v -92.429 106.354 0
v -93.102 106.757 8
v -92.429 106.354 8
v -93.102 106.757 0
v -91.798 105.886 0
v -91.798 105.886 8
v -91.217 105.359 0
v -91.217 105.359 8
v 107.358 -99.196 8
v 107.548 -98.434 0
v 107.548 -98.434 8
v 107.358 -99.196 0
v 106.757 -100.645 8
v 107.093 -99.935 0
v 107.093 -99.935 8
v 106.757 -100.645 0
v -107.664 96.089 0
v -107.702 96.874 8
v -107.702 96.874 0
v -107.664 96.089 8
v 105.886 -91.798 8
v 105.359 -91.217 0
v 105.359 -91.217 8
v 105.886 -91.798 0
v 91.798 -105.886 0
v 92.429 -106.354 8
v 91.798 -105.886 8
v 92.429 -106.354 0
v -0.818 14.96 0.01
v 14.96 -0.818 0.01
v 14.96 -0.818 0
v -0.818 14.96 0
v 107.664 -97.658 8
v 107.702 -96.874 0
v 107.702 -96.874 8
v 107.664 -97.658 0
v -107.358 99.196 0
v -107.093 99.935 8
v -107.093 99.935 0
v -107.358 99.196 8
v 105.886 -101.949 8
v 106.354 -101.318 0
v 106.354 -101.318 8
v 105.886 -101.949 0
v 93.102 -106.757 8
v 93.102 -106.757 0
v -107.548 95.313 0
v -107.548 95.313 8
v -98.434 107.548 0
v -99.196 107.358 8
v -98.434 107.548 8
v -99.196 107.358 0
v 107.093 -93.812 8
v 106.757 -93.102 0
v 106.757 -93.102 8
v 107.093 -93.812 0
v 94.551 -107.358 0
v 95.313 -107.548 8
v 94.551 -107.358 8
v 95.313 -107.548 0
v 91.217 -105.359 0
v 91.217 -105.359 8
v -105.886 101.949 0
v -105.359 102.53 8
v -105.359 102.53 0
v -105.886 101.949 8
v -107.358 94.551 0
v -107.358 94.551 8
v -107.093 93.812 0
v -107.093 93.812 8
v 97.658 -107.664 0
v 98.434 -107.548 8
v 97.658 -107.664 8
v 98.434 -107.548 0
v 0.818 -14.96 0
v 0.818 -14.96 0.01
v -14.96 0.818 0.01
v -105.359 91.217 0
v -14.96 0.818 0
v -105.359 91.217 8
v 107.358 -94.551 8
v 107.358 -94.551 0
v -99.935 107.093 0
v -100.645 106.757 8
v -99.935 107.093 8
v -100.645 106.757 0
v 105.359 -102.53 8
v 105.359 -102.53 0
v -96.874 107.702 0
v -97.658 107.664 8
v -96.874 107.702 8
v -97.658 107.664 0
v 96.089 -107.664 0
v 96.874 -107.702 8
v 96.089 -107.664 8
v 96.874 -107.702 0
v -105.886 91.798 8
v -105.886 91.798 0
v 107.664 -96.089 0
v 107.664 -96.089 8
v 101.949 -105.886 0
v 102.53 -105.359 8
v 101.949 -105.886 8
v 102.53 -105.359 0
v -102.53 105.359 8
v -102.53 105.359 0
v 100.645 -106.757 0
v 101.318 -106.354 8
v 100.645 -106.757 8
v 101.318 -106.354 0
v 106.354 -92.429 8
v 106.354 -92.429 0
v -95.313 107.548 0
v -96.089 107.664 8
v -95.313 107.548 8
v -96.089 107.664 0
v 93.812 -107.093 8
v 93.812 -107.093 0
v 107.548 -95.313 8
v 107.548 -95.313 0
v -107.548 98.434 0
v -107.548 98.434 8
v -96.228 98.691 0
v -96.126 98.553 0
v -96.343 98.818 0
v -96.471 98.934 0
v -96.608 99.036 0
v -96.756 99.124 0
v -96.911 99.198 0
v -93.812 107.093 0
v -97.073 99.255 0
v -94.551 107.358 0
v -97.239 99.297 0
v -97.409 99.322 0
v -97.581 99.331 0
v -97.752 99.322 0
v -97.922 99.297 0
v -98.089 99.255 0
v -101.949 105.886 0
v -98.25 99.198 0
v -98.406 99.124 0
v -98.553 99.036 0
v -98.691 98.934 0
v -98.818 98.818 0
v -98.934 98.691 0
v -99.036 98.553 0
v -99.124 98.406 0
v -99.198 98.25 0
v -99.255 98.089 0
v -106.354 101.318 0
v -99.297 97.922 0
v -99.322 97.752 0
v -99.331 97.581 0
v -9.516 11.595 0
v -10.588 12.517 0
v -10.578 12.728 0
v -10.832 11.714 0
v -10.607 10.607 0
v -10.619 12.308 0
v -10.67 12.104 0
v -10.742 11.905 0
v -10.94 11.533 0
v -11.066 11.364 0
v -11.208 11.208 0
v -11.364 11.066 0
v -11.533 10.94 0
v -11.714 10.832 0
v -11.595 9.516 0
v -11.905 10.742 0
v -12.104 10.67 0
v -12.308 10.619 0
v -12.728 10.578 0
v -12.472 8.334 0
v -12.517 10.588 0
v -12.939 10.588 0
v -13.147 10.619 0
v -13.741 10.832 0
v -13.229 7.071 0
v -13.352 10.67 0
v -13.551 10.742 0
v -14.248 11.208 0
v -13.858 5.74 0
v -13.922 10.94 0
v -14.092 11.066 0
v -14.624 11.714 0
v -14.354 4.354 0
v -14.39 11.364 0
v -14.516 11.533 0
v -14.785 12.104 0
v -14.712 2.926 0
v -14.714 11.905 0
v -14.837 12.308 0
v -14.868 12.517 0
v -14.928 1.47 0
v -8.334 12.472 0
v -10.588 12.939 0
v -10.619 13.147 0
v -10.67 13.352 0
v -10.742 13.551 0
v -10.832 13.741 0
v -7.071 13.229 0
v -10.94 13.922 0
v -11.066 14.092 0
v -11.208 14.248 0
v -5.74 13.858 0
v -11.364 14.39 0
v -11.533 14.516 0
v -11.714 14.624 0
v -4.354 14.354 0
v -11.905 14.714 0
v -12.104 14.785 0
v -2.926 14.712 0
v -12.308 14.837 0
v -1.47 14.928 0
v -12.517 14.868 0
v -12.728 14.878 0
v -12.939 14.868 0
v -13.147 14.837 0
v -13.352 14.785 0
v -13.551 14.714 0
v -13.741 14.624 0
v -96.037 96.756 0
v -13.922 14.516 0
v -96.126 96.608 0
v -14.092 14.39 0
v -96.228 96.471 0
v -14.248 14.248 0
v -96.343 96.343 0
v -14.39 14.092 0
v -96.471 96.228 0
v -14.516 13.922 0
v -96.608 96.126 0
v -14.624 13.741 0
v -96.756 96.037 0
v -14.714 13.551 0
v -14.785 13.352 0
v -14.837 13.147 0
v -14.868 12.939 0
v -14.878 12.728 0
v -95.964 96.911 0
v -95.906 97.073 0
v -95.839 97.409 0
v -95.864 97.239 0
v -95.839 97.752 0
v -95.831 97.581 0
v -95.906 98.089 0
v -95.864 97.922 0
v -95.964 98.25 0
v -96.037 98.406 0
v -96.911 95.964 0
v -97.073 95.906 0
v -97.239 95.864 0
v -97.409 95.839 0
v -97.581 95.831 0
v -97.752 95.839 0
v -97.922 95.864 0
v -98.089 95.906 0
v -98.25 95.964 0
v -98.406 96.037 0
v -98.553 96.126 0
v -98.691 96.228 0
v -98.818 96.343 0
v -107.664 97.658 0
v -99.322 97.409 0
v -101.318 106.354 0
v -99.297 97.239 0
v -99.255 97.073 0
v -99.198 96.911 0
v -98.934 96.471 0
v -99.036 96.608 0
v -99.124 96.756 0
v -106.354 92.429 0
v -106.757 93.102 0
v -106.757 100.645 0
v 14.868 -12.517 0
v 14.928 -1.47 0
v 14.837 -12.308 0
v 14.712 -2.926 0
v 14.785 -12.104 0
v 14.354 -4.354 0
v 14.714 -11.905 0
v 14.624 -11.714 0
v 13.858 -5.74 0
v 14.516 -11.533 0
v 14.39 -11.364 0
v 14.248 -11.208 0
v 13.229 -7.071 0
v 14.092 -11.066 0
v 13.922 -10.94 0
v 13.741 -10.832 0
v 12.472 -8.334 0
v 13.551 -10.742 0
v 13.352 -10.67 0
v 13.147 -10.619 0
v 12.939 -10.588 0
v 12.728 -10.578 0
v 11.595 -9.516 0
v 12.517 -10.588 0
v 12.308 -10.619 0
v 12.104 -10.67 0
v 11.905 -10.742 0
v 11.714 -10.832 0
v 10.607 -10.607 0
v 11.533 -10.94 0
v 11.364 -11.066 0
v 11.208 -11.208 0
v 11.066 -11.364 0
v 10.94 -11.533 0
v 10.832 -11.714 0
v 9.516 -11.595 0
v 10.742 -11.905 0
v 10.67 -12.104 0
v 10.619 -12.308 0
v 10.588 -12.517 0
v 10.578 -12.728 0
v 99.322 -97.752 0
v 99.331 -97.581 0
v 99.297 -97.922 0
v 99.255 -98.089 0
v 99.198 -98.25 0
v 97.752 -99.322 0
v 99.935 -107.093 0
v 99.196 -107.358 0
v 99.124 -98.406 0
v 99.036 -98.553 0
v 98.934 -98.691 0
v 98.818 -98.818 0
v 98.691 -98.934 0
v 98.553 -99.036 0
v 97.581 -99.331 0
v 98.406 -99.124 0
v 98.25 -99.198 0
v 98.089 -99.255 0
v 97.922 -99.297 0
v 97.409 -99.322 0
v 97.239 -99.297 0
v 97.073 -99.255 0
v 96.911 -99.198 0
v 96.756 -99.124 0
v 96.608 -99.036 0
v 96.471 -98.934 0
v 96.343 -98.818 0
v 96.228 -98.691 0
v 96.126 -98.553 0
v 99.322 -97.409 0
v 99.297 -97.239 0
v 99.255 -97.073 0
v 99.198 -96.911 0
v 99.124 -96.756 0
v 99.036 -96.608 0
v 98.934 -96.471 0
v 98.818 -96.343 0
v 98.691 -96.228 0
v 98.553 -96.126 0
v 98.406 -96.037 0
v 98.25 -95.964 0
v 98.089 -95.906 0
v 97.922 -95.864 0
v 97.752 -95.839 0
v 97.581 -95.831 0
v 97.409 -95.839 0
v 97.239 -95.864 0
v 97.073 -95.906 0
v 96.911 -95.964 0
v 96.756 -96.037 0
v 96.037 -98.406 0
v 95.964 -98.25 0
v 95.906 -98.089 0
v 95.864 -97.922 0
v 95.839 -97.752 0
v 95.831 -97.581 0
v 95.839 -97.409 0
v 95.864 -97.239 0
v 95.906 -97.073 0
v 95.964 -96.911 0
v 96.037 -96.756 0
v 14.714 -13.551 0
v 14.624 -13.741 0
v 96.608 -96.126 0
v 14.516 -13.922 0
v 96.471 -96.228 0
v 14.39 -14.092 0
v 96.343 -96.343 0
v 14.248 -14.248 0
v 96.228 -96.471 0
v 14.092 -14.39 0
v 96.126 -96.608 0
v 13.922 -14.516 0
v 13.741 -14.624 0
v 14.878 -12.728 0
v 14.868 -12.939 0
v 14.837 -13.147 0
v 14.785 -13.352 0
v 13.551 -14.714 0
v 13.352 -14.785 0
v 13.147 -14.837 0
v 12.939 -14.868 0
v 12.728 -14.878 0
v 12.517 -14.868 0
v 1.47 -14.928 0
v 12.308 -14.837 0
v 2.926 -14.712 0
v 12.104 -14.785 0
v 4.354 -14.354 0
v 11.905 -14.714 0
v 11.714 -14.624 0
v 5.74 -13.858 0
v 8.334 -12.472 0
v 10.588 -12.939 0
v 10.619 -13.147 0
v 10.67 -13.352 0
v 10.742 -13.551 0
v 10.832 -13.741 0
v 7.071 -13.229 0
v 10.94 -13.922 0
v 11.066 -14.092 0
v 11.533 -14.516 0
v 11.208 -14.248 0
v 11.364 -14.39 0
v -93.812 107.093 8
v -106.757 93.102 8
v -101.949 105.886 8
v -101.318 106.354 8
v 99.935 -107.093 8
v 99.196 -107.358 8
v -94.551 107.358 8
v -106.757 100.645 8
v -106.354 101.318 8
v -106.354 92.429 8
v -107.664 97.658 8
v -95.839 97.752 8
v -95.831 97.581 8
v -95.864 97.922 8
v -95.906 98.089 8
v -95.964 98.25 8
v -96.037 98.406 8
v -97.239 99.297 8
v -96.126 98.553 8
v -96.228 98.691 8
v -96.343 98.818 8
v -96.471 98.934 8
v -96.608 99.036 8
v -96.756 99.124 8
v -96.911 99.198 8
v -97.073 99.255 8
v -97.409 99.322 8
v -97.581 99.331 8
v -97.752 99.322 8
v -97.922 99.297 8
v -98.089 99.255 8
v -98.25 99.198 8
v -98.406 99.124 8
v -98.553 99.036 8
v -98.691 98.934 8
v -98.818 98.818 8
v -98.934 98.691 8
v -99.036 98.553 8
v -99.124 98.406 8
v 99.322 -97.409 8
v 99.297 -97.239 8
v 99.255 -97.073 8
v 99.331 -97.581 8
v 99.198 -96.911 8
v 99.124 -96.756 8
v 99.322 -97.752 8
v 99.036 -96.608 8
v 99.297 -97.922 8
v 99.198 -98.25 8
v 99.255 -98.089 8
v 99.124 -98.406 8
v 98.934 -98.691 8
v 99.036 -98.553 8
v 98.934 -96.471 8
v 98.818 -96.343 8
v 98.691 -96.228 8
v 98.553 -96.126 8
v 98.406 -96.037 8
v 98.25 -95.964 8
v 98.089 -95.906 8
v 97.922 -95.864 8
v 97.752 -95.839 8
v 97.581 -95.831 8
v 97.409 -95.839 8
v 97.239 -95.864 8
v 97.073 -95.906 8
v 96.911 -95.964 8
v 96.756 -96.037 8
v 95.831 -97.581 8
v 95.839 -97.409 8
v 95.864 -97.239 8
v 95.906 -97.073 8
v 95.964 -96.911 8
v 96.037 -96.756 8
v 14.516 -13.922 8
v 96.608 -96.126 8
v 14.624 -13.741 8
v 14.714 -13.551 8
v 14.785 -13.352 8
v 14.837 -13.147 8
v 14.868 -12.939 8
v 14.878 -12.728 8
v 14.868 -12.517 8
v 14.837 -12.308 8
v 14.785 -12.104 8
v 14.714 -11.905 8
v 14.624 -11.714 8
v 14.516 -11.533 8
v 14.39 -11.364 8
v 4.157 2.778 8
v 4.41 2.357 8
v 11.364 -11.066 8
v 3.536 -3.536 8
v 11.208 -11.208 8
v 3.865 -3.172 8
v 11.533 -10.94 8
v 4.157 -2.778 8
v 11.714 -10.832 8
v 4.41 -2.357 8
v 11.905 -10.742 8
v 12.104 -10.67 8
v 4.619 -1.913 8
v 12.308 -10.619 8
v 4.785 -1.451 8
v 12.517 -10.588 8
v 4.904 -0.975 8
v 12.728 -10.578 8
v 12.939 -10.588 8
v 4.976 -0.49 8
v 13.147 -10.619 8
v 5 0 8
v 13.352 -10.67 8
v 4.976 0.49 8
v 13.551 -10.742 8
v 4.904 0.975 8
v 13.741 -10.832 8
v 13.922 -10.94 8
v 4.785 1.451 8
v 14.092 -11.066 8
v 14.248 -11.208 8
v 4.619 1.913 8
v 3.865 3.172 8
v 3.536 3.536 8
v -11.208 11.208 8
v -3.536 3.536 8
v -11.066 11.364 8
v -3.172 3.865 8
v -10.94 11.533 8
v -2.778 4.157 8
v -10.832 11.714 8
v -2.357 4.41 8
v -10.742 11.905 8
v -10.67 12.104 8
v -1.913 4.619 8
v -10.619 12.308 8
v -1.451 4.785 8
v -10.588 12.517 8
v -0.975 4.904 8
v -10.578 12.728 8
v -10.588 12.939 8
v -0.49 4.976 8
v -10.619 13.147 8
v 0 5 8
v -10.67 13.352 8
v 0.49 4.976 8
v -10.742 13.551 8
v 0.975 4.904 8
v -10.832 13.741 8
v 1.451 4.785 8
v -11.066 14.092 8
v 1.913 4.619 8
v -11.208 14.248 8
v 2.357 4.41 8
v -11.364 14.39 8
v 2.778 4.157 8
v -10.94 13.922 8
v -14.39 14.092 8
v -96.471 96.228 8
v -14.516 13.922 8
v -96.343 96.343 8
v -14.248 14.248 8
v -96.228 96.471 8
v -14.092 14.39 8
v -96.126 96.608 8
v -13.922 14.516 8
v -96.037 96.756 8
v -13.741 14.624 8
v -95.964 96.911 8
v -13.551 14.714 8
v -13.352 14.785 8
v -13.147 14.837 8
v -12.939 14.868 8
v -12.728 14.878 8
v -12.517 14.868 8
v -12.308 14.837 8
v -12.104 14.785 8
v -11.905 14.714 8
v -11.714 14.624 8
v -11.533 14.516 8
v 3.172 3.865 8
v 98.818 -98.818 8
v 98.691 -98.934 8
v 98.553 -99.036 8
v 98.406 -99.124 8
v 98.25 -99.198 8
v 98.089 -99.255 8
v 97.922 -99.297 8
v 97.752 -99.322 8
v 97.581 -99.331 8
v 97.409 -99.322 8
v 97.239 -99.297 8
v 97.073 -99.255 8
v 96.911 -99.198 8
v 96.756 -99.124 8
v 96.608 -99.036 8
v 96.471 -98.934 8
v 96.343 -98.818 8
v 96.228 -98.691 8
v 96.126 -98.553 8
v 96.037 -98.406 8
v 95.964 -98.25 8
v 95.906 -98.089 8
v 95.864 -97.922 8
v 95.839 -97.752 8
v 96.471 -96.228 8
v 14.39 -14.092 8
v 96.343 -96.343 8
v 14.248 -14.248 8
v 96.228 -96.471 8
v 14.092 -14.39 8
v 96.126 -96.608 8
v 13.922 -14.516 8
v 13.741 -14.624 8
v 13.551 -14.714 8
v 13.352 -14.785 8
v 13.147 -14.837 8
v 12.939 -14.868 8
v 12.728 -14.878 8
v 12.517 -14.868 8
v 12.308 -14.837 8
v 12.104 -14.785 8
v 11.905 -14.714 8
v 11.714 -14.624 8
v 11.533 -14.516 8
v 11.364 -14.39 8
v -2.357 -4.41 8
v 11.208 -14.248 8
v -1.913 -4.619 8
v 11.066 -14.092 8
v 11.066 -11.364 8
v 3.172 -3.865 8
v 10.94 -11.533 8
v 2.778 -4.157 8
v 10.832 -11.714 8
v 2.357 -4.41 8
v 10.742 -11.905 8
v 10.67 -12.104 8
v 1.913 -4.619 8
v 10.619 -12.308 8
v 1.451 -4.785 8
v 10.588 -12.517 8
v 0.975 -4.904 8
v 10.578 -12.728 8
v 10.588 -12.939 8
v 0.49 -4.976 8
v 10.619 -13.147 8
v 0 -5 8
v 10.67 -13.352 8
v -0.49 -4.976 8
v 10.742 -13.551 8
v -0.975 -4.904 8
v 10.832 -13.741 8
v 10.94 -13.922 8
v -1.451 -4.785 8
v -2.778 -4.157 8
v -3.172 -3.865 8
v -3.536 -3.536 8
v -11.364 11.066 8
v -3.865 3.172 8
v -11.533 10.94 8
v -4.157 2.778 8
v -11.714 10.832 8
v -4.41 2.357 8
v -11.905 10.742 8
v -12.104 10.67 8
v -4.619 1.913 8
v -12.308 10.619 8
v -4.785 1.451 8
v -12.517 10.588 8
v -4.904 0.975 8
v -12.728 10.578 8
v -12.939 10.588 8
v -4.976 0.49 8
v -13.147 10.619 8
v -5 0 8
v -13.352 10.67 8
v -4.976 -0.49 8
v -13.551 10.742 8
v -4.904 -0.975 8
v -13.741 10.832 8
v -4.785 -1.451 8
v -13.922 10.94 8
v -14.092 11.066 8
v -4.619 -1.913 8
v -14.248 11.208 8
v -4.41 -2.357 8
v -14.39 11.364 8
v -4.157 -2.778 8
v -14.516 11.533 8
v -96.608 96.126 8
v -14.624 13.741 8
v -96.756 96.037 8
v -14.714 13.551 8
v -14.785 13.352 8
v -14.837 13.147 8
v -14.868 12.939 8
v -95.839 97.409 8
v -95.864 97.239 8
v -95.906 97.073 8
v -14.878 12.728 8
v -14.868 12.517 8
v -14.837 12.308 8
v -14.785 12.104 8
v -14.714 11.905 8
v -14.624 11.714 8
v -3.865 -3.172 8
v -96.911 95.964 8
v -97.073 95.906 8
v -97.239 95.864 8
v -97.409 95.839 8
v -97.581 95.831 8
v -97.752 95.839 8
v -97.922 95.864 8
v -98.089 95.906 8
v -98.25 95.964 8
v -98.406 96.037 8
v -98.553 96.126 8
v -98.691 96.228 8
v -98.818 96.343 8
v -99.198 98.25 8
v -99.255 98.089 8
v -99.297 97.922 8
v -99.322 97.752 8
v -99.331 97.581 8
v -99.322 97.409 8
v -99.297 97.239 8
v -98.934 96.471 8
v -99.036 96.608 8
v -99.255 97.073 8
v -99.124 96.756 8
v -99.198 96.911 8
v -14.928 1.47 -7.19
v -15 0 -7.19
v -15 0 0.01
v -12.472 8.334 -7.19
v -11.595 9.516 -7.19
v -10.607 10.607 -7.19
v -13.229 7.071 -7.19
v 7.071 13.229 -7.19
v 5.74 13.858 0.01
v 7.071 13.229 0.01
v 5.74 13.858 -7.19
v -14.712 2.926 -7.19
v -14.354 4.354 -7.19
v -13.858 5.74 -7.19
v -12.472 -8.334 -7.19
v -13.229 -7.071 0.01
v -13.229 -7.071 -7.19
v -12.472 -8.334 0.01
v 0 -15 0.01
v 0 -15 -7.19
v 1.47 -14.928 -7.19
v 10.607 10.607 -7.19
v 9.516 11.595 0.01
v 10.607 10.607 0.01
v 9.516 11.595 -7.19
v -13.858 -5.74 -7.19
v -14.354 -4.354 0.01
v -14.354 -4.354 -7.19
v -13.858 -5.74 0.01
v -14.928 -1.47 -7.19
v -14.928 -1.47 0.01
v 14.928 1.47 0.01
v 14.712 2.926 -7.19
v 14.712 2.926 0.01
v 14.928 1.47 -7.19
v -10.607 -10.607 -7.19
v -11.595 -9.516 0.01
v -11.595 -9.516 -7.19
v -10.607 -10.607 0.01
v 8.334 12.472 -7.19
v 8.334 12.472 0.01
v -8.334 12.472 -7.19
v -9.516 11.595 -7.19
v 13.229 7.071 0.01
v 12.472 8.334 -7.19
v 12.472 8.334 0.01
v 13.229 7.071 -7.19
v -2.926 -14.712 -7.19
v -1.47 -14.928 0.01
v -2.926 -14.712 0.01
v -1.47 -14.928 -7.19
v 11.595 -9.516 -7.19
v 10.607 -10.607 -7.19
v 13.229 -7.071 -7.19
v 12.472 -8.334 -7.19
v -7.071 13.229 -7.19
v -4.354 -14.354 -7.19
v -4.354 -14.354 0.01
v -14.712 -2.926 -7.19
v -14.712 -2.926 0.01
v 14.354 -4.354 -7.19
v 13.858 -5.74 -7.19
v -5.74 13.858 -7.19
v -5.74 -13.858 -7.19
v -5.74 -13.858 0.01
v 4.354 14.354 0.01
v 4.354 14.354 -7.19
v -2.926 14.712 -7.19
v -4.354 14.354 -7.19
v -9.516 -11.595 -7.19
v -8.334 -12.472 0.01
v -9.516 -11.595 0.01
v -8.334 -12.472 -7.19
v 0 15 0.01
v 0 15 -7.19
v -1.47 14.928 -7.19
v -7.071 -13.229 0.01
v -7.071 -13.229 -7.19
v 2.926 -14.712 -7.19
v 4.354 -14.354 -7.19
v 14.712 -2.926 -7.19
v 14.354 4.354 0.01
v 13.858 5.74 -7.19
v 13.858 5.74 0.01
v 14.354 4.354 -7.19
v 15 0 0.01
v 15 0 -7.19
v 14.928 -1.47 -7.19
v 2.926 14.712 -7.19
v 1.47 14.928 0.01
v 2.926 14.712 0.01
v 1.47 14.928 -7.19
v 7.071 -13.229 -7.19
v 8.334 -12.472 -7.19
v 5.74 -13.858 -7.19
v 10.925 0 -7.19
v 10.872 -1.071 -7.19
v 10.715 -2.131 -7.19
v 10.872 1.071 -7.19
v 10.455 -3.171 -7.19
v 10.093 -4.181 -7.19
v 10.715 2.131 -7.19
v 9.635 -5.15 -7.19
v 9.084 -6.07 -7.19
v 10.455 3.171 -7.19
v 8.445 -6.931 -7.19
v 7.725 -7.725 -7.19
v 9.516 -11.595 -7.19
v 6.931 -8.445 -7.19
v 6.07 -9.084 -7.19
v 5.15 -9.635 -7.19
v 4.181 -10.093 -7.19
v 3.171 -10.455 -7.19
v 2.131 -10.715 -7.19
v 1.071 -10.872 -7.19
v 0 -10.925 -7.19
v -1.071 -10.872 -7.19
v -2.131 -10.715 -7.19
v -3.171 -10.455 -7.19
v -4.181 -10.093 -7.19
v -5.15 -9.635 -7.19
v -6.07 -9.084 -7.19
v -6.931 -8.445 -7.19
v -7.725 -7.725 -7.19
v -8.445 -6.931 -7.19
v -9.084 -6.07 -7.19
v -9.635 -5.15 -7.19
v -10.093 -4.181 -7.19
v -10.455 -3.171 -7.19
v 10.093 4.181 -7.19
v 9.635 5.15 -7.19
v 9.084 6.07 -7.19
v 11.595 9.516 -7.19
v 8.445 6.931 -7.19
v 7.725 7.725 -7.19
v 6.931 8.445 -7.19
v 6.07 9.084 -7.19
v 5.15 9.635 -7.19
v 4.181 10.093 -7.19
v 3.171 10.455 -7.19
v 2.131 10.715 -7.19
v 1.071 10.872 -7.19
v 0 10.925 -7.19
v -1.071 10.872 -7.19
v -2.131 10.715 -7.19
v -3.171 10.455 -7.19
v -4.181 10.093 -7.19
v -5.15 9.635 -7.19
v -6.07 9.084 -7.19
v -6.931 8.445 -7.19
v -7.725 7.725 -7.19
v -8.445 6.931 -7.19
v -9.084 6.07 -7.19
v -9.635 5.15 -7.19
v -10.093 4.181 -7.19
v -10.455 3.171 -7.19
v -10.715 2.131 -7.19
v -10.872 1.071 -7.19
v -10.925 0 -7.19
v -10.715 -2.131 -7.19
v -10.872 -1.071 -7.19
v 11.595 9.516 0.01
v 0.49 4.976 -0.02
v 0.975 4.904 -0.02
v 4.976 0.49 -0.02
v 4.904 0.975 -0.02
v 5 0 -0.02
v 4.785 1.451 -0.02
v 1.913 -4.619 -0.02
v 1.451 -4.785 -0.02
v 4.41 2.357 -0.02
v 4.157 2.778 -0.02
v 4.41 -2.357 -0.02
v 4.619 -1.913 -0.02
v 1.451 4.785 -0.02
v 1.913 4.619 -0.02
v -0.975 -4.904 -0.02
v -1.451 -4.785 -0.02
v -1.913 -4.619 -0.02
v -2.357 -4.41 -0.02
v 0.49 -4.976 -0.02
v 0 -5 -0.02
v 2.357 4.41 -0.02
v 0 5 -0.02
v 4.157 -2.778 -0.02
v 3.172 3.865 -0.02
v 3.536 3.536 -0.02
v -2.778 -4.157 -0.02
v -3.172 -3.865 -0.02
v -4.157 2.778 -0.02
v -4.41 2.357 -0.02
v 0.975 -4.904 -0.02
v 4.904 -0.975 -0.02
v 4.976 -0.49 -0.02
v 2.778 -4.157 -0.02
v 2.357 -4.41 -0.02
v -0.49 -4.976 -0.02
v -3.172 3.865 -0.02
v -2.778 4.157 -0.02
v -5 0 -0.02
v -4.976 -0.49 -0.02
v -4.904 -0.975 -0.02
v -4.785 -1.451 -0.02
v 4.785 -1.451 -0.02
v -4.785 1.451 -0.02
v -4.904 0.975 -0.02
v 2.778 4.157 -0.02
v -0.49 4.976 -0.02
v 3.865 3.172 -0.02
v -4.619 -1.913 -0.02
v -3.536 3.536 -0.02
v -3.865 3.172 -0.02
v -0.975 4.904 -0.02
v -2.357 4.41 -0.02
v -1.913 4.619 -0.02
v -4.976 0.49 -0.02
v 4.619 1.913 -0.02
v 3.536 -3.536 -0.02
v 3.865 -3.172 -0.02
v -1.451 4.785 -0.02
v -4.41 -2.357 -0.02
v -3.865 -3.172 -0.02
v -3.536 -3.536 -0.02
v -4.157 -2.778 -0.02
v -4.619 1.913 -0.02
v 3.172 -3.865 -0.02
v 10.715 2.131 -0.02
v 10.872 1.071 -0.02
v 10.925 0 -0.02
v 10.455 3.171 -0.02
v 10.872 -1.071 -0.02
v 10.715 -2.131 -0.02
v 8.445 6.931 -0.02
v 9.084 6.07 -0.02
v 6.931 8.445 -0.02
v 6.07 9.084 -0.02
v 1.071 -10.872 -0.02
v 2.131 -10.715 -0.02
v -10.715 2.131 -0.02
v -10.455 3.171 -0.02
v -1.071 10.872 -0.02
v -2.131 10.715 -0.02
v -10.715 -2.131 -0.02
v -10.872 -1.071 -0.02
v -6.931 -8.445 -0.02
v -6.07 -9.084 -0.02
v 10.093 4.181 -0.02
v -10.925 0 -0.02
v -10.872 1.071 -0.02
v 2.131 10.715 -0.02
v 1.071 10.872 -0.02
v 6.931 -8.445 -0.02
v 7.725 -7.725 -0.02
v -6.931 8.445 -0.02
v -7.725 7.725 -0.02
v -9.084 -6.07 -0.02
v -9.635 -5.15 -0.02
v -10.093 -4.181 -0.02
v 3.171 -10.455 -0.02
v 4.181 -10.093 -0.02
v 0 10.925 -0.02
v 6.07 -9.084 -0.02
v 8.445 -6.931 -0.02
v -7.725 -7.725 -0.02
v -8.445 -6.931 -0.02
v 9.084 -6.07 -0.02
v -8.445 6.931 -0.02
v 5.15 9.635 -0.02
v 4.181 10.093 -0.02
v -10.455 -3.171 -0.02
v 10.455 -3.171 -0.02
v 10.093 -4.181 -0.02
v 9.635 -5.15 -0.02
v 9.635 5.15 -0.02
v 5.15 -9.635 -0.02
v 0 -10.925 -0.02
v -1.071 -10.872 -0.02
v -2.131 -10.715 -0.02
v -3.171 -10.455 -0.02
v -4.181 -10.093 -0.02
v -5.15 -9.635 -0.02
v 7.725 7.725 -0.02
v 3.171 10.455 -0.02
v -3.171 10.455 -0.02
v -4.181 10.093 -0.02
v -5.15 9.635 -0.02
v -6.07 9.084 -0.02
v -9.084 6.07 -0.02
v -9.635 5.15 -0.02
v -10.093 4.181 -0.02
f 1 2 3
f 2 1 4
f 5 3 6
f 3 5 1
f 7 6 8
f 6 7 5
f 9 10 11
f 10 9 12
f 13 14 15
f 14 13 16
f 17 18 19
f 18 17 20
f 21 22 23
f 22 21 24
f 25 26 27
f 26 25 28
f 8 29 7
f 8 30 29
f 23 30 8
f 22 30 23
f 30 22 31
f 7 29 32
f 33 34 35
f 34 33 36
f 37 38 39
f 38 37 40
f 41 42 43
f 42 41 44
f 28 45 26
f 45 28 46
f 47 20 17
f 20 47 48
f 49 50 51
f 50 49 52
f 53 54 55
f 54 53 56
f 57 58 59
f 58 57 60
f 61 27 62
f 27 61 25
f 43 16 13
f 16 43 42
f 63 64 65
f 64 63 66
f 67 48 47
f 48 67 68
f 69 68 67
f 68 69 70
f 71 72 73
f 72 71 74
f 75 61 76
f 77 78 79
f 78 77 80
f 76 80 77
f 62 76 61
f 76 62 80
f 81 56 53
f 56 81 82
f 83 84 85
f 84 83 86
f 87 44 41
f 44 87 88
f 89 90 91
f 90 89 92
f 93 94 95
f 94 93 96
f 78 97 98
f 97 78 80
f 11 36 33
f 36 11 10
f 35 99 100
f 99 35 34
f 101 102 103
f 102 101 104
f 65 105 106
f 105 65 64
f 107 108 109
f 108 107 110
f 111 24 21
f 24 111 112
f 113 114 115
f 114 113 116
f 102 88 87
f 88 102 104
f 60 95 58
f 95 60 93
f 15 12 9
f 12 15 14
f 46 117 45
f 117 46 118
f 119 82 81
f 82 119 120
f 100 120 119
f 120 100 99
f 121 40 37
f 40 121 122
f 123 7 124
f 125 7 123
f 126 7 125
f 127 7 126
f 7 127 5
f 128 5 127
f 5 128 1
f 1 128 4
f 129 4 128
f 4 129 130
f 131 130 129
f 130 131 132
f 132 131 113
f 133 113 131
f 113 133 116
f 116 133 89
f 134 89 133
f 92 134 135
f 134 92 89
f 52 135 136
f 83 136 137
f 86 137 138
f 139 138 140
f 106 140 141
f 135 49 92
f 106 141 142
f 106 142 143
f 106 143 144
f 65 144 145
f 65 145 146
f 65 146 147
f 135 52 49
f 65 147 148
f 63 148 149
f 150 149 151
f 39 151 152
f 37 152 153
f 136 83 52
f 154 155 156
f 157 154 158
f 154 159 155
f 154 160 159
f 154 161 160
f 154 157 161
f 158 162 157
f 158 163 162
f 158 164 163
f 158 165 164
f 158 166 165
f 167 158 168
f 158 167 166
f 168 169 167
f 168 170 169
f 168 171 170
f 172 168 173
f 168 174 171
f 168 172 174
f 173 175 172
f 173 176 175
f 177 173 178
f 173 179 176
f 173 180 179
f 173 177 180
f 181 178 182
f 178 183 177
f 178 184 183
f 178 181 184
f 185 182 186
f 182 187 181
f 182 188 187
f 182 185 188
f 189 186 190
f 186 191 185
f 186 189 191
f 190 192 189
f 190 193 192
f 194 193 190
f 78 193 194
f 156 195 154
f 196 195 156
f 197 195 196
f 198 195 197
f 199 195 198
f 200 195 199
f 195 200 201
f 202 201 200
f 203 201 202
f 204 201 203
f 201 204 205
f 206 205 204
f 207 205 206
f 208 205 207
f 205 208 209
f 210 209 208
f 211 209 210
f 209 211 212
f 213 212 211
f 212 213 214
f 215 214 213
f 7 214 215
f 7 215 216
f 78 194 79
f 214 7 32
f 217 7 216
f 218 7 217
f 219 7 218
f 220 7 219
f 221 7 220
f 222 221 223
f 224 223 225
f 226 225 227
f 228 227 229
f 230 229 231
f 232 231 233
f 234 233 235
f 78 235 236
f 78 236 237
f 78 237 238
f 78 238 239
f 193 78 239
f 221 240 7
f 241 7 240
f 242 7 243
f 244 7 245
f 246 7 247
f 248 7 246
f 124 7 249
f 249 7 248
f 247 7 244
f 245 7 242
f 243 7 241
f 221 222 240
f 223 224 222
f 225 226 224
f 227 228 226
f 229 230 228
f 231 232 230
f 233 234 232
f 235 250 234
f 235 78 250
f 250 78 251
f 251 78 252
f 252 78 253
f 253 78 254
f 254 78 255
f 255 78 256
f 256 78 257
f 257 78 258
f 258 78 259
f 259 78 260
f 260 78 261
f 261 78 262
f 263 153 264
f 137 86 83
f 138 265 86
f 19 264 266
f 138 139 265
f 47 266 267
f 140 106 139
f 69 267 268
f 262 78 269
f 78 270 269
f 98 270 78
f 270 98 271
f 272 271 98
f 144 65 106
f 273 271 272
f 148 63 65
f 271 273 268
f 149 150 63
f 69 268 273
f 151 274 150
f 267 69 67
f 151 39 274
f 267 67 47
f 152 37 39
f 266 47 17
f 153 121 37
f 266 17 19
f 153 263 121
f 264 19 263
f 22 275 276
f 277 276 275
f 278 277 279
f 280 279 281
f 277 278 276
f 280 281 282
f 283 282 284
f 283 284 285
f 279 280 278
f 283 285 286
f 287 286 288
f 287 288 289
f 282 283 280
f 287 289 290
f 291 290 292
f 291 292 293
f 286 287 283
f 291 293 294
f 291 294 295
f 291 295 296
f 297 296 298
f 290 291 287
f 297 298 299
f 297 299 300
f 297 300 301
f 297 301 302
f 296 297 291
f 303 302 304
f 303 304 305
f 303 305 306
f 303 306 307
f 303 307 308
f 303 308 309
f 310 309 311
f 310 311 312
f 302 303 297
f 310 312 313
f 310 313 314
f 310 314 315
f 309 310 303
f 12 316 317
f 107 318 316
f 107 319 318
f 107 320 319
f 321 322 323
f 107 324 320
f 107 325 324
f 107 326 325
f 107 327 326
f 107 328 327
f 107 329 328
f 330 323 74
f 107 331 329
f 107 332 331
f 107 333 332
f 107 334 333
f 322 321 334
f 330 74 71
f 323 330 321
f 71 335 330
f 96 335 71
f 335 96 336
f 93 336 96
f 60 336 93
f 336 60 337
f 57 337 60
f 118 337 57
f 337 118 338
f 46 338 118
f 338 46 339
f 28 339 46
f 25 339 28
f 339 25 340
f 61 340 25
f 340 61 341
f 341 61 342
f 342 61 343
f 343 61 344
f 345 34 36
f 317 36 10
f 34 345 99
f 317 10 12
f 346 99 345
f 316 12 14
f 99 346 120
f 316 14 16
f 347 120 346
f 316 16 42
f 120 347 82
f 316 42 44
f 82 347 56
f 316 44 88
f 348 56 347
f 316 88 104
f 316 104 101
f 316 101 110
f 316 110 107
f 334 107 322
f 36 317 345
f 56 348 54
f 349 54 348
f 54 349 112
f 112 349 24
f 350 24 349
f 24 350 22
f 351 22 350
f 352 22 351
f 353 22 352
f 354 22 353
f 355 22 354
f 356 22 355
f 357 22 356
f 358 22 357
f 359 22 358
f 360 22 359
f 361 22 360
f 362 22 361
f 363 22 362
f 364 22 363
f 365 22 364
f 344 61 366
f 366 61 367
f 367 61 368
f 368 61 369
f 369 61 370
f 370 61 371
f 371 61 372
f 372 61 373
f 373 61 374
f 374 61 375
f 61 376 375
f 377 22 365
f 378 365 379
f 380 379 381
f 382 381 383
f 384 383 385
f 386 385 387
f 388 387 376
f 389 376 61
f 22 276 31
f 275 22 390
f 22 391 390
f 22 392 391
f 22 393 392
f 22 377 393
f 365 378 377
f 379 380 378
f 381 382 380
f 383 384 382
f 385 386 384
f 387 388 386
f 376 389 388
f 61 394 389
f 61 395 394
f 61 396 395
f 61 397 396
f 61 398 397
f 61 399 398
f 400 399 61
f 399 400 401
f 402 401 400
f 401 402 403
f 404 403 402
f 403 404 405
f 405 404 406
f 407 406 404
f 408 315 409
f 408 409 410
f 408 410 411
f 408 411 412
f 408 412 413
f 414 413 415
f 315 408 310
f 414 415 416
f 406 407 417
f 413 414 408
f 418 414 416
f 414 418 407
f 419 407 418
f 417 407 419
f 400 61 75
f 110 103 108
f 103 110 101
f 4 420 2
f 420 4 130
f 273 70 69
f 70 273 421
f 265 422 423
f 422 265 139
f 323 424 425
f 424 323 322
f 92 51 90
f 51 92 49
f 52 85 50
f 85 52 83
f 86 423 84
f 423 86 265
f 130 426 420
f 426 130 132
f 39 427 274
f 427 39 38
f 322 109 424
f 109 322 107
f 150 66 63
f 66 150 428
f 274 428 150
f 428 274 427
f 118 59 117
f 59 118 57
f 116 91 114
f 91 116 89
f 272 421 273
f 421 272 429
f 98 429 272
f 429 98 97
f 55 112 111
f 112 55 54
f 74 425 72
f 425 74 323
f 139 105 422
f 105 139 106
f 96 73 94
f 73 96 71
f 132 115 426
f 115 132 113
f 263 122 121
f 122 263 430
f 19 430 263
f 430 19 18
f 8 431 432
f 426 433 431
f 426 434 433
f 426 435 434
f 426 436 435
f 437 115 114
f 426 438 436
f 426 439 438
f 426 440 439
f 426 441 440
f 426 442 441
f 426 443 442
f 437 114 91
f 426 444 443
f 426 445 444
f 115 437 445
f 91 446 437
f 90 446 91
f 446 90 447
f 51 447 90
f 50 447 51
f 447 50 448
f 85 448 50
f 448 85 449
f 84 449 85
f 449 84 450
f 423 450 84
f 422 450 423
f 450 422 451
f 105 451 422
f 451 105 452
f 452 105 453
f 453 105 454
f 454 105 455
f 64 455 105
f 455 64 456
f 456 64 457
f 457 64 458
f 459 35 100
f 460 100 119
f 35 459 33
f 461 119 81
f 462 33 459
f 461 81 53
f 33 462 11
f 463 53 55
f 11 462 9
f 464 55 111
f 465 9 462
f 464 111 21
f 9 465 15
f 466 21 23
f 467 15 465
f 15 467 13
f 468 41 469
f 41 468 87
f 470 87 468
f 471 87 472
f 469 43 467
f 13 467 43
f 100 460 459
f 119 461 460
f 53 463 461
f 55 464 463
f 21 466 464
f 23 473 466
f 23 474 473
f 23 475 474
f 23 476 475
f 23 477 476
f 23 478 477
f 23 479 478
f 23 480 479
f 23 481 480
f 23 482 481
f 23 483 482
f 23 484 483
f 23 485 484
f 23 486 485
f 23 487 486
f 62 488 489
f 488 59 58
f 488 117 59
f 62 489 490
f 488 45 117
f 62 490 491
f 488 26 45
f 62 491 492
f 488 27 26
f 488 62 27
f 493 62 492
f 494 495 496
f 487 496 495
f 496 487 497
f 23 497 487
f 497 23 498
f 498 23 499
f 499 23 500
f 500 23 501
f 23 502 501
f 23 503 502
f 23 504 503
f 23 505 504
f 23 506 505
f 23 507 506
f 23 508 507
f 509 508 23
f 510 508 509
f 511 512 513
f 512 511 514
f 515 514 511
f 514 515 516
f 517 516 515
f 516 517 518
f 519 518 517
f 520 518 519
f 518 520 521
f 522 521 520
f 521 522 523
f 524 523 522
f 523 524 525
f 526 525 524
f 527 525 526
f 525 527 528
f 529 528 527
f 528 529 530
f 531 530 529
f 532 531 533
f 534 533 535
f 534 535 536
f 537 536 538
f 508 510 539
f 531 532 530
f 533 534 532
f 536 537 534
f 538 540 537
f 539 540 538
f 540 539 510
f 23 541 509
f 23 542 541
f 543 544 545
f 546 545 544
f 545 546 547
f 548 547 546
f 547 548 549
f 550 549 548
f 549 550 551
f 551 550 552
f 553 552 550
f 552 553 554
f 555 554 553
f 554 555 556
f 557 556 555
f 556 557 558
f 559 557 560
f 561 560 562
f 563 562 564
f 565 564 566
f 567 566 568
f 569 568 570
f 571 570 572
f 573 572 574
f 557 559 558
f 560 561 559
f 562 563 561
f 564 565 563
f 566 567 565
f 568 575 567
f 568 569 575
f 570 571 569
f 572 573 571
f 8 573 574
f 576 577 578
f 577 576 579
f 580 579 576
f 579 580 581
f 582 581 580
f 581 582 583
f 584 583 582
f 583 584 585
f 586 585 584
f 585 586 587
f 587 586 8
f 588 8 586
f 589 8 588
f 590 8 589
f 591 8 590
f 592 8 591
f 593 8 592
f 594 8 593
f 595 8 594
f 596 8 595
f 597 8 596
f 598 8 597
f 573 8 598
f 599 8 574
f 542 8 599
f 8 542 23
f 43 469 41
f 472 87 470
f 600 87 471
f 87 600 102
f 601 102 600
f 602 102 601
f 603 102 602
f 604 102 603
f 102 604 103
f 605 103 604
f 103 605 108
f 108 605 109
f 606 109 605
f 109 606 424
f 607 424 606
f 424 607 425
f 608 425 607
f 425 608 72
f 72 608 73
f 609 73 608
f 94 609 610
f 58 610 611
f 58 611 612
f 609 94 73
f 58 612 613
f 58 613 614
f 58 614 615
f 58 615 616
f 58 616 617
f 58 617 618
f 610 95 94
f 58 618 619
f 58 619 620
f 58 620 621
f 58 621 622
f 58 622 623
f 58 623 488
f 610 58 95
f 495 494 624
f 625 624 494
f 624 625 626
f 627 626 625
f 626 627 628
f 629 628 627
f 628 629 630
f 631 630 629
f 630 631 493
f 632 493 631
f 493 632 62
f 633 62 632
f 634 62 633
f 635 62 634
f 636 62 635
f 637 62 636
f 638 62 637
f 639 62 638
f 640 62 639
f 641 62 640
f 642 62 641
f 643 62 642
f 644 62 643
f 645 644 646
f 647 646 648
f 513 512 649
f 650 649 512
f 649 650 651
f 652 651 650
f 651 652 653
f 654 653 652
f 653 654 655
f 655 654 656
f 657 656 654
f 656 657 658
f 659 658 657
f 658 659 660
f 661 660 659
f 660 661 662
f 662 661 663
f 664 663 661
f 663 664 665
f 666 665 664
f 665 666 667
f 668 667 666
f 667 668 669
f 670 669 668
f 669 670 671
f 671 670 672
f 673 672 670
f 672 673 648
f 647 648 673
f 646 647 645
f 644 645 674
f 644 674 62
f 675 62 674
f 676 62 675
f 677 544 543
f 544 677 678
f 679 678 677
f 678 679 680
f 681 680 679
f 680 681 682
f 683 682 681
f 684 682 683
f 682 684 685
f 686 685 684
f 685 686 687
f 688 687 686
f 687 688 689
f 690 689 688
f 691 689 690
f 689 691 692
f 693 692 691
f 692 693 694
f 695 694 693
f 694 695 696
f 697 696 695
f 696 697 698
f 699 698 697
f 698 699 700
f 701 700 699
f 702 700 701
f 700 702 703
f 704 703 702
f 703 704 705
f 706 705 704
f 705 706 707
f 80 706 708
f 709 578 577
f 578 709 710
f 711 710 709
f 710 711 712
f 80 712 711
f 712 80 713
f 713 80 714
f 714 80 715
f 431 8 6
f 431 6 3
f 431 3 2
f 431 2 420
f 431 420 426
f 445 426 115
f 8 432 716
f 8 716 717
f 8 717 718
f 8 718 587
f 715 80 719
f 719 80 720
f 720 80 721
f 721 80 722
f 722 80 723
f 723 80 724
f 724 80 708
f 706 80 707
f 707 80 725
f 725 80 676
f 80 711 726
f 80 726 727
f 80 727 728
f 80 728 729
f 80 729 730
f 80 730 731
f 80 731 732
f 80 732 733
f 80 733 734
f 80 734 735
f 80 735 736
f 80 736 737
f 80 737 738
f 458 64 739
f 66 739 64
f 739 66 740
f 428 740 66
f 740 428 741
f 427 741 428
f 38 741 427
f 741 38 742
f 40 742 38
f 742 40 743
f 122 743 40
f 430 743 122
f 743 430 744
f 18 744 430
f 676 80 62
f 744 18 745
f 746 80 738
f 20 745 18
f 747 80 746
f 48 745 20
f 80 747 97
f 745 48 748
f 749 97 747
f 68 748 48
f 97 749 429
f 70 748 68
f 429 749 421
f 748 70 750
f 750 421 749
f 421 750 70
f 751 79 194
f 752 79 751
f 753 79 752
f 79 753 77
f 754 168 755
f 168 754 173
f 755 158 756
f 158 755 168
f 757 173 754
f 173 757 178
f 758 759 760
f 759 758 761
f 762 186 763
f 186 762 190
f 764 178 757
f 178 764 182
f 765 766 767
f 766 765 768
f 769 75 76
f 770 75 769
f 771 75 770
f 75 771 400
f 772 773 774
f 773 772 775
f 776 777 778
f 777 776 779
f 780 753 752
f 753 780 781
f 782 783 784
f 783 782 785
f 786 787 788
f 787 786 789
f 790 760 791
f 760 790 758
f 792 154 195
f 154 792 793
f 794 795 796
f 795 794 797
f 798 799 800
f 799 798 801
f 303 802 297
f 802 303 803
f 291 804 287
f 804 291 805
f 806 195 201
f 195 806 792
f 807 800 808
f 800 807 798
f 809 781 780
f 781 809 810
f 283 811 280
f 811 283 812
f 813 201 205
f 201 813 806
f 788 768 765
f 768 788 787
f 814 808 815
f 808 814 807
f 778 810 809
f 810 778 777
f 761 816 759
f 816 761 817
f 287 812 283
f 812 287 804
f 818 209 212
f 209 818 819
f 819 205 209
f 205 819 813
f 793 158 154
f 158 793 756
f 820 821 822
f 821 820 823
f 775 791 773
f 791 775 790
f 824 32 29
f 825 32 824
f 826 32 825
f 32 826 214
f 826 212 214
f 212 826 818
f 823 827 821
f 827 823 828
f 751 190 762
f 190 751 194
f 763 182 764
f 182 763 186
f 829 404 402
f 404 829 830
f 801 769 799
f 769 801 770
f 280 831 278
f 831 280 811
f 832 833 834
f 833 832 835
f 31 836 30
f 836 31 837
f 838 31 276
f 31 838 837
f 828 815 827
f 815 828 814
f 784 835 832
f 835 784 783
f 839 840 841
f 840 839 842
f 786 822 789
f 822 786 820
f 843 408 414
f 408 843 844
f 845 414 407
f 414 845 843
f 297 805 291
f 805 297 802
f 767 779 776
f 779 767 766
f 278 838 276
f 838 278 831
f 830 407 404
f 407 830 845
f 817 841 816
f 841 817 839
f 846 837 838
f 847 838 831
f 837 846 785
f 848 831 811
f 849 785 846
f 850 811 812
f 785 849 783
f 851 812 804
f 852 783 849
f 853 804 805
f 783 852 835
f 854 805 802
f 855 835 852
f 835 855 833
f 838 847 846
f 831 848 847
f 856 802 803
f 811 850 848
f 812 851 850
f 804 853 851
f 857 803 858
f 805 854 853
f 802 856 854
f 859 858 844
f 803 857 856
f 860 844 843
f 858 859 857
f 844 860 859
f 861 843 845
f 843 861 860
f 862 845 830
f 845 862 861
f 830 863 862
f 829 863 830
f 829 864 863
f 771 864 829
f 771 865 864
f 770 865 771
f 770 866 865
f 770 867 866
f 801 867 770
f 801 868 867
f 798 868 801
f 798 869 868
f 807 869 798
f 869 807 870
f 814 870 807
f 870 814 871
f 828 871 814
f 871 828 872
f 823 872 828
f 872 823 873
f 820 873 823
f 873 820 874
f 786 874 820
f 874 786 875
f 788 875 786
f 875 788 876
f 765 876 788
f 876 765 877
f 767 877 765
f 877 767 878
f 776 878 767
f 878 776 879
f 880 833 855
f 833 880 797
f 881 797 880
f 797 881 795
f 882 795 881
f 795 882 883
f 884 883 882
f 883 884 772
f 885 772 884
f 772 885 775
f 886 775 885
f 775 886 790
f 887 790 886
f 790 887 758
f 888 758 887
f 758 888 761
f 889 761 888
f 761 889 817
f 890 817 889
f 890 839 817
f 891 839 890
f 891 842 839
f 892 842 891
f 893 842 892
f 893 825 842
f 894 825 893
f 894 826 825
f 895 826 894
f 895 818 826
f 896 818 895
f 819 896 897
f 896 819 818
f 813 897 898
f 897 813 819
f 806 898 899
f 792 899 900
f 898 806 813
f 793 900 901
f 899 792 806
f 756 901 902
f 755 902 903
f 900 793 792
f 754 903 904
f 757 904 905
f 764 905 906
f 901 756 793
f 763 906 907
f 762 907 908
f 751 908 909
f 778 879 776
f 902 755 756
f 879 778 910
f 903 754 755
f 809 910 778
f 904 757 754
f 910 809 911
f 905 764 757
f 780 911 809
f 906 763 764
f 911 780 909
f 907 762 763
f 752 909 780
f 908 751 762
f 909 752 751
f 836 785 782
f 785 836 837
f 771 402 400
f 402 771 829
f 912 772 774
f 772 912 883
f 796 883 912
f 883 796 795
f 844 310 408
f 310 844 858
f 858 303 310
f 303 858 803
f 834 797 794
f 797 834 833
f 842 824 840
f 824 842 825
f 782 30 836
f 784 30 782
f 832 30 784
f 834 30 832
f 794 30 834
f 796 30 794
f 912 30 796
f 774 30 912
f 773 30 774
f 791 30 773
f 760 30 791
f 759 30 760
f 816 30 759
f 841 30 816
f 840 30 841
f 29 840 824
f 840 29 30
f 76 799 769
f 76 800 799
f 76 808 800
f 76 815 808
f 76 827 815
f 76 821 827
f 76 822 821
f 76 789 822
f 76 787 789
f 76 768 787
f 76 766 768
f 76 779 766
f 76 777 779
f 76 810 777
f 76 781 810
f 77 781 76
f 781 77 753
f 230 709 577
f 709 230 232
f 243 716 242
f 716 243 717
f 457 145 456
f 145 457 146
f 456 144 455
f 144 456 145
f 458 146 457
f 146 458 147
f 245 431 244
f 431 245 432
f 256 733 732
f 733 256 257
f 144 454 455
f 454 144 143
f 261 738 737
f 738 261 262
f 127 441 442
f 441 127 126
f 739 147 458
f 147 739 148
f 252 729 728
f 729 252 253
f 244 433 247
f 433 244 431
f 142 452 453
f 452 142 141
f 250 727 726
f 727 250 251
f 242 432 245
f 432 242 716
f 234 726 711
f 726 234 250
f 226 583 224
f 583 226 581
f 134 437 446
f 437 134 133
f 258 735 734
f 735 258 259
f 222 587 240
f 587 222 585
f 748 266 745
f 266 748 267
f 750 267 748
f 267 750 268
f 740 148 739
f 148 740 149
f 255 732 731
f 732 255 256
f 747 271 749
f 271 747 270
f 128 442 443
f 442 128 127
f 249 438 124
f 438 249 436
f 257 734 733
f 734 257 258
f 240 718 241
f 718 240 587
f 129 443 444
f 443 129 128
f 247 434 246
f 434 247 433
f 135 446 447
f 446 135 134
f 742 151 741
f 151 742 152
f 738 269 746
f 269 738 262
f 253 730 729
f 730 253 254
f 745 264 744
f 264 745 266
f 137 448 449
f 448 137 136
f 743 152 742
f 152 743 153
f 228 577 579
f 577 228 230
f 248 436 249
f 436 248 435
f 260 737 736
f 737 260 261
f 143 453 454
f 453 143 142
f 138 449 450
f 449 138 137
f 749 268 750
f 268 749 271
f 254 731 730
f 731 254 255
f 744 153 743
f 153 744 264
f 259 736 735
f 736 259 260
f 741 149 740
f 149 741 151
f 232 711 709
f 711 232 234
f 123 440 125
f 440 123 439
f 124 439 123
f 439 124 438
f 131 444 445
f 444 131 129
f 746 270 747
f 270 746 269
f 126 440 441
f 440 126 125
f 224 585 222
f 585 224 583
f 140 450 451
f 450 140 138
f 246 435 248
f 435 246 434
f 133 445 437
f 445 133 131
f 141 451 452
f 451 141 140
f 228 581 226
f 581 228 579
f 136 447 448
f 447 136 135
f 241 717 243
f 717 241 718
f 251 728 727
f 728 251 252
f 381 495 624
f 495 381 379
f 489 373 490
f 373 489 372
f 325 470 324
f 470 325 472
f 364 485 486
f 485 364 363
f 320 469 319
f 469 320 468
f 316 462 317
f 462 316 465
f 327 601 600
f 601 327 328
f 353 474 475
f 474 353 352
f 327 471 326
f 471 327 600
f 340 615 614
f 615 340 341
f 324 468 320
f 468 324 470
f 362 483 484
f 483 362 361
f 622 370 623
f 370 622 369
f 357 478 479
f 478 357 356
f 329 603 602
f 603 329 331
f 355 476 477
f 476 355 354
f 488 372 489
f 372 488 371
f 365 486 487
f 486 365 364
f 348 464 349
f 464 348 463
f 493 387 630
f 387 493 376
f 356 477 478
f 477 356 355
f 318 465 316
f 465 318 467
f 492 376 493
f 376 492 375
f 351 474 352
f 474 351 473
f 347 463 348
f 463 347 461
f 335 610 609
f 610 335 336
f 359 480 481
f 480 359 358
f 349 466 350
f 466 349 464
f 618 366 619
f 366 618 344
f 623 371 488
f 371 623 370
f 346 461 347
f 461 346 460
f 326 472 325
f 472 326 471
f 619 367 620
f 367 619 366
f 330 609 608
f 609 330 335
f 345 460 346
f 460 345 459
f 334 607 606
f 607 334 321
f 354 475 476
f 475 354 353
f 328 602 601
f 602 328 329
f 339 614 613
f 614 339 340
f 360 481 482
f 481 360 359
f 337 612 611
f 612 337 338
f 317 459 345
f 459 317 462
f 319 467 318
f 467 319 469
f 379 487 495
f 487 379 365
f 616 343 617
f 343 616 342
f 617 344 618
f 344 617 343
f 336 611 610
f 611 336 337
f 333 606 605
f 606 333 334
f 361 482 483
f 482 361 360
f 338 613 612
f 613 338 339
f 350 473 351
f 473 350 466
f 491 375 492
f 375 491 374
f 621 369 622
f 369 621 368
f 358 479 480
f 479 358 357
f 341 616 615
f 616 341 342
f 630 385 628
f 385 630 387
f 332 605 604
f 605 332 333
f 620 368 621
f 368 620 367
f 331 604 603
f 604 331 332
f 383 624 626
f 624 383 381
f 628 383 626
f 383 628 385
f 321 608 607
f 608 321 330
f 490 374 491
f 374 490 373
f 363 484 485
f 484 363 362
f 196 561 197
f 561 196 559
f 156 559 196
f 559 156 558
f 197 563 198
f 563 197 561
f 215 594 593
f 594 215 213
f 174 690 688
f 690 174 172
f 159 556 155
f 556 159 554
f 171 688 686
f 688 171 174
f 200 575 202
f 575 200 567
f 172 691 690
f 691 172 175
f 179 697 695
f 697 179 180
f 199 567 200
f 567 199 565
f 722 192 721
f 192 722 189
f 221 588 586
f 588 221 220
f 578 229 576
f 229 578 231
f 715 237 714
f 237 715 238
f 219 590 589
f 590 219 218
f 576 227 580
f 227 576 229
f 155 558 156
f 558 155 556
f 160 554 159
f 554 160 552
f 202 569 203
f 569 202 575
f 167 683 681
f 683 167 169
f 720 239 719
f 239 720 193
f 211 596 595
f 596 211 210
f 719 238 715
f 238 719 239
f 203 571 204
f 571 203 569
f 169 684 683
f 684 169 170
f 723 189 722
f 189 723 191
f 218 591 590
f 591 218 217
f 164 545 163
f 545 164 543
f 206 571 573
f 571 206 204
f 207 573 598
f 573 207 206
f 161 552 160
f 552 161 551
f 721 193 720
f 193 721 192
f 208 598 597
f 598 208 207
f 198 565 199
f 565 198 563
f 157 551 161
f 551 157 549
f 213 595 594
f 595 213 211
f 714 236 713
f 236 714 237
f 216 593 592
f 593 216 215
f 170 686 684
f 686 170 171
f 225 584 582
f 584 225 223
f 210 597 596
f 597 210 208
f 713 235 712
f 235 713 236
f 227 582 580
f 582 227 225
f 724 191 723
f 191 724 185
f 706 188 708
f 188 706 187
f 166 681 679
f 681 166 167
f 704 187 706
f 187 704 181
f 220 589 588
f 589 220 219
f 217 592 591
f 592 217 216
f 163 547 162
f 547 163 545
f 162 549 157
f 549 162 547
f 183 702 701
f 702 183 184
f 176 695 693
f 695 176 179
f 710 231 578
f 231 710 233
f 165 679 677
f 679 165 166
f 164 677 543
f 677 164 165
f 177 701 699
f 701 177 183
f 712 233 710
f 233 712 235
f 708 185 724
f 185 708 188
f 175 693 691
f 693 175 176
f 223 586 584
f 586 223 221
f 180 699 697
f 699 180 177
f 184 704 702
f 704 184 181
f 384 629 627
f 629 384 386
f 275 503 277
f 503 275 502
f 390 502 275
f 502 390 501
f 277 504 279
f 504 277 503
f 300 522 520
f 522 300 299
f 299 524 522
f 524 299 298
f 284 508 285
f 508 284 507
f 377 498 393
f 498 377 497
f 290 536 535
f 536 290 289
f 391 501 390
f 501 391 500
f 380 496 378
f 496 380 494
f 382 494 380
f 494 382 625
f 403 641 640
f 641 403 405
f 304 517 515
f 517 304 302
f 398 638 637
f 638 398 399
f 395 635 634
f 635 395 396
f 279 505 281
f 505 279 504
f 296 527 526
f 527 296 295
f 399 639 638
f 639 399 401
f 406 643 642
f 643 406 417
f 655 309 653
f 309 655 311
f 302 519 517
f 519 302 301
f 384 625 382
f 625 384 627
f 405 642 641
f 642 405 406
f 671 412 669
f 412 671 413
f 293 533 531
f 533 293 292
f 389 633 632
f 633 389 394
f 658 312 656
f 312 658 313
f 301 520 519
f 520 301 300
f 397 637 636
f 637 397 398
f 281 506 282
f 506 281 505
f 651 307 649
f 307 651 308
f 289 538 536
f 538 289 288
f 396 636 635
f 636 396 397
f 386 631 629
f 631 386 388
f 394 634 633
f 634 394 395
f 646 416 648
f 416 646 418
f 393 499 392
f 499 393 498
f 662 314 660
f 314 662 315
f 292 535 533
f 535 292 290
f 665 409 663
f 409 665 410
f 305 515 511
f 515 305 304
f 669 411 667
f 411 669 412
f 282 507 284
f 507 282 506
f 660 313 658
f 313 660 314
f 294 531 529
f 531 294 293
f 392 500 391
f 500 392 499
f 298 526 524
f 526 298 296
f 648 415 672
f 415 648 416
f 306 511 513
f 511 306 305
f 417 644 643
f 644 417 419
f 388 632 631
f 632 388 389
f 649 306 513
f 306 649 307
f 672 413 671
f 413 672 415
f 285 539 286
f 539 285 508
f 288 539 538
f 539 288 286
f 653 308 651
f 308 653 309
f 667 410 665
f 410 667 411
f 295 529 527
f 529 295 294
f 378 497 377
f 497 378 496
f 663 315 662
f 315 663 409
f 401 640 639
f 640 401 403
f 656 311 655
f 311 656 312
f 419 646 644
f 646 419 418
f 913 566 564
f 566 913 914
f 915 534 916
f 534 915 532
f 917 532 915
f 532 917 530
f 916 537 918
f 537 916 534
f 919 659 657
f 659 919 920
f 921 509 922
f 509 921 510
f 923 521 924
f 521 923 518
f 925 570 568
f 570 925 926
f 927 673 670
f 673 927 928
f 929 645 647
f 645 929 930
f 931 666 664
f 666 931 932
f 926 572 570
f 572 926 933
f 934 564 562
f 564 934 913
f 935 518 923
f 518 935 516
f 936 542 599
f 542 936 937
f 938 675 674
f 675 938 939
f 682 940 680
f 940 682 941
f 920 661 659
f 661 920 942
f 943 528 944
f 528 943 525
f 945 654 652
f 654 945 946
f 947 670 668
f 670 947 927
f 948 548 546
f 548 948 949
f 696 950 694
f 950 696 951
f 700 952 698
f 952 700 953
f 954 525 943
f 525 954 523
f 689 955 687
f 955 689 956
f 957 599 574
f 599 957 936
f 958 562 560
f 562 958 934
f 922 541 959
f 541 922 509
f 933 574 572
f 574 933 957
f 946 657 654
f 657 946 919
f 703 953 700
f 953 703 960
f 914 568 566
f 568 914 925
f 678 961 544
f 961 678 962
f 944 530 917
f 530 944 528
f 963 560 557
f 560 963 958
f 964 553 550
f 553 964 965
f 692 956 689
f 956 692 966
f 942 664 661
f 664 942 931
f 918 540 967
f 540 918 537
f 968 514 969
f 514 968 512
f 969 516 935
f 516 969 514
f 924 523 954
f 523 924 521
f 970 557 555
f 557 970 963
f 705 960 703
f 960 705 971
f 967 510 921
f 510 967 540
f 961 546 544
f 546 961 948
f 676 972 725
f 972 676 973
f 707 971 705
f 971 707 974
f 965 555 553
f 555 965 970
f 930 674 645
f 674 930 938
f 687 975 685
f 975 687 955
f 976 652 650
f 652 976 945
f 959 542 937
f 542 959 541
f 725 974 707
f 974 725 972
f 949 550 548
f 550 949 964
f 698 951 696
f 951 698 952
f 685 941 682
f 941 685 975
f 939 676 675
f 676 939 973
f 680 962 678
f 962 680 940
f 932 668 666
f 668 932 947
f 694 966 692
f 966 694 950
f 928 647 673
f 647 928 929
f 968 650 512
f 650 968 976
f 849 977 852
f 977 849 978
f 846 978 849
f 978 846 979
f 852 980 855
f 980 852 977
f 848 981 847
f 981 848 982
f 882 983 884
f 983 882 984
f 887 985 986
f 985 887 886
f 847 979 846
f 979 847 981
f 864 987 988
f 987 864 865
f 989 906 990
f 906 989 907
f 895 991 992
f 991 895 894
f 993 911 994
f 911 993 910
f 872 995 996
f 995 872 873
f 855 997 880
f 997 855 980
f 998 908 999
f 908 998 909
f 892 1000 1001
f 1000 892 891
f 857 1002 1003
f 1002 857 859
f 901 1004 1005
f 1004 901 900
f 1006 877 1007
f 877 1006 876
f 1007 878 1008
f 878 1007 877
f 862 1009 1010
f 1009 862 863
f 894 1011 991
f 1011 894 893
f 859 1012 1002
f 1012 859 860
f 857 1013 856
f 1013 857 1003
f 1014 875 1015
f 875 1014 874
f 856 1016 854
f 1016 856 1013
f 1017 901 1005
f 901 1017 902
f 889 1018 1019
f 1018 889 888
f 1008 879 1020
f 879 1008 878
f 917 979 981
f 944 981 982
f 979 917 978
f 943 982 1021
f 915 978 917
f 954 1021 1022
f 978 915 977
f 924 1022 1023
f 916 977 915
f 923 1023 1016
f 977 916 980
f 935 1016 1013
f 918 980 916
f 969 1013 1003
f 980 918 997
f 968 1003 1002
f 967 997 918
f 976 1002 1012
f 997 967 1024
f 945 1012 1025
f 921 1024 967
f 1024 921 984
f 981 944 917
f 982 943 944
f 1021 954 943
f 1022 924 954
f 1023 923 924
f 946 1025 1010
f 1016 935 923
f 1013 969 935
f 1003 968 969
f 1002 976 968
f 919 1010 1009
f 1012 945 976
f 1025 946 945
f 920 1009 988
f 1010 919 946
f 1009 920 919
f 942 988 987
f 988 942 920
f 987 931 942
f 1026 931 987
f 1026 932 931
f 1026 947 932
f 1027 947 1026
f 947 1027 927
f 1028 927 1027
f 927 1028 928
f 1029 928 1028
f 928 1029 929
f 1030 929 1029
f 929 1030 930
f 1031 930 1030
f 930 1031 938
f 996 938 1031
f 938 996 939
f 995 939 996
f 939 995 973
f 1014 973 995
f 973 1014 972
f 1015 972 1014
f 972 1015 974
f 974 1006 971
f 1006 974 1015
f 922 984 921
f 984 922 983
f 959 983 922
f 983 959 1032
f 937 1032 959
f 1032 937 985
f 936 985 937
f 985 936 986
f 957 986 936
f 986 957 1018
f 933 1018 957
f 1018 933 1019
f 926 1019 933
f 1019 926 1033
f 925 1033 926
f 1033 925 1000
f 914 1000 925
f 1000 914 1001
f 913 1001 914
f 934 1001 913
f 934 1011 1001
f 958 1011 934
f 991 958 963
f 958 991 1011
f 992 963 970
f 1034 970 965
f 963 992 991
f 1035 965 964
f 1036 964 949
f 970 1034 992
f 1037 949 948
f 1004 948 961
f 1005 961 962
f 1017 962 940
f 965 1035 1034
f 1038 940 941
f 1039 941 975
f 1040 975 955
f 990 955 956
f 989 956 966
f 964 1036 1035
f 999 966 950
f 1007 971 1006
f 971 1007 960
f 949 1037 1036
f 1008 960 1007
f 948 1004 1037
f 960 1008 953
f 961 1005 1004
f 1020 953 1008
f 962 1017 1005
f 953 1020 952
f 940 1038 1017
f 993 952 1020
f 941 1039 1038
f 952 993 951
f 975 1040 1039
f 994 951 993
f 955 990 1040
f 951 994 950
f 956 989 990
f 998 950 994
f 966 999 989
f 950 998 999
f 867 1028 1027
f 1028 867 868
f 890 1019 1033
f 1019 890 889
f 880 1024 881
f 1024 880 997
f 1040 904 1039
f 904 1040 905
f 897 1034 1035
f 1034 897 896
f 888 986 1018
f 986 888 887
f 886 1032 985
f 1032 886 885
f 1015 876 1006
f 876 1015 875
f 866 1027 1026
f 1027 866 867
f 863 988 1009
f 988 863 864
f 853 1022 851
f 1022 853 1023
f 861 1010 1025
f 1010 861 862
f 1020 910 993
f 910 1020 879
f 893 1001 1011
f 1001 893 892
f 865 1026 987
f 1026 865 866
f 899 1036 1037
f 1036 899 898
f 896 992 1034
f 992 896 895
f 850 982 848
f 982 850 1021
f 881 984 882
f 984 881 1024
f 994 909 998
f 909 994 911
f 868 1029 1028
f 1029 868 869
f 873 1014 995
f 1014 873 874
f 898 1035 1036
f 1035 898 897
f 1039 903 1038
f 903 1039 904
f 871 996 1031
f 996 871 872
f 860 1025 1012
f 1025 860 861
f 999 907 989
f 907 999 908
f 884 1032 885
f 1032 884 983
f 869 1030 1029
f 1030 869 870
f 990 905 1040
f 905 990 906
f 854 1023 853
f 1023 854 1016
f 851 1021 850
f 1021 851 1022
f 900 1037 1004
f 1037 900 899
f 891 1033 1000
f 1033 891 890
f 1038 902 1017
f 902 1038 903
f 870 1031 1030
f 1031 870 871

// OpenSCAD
// Gen-DI — rear BEARING BRIDGE (bar endbell, 2026-10-10): a 608 boss on a 20 mm wide bar that spans the
// two frame rods at 135 deg and 135+180 deg (R = flange_bolt_r). The front bridge uses the rods at 45/225 deg, the rear
// bridge the rods at 135/315 deg, so the two bridges cross at 90 deg and the stator is held at 4 points.
// A bar instead of a full disc is what lets this big-ring kit fit ONE 410 mm plate. Print flat face DOWN (boss up, no supports).
// Brace holes (temporary M4 jack rods, R = brace_r) sit on the bar axis.
include <parameters.scad>;
$fn = 64;
bar_w = 20;
bar_len = 2 * (flange_bolt_r + 9);
module bar_2d() { offset(r=8) offset(delta=-8) square([bar_len, bar_w], center=true); }
difference() {
    rotate([0, 0, 135]) union() {
        linear_extrude(endbell_thick) bar_2d();
        translate([0, 0, -bearing_h + 0.01]) cylinder(d=30, h=bearing_h);
    }
    translate([0, 0, -bearing_h - 0.1]) cylinder(d=endbell_shaft_clear, h=50);
    translate([0, 0, -bearing_h - 0.02]) cylinder(d=bearing_d, h=bearing_h);
    for (s = [0, 180]) rotate([0, 0, 135 + s]) translate([flange_bolt_r, 0, -20]) cylinder(d=m3_clear, h=60);
    for (a = brace_angles) translate([brace_r*cos(a), brace_r*sin(a), -20]) cylinder(d=brace_d, h=50);
}
